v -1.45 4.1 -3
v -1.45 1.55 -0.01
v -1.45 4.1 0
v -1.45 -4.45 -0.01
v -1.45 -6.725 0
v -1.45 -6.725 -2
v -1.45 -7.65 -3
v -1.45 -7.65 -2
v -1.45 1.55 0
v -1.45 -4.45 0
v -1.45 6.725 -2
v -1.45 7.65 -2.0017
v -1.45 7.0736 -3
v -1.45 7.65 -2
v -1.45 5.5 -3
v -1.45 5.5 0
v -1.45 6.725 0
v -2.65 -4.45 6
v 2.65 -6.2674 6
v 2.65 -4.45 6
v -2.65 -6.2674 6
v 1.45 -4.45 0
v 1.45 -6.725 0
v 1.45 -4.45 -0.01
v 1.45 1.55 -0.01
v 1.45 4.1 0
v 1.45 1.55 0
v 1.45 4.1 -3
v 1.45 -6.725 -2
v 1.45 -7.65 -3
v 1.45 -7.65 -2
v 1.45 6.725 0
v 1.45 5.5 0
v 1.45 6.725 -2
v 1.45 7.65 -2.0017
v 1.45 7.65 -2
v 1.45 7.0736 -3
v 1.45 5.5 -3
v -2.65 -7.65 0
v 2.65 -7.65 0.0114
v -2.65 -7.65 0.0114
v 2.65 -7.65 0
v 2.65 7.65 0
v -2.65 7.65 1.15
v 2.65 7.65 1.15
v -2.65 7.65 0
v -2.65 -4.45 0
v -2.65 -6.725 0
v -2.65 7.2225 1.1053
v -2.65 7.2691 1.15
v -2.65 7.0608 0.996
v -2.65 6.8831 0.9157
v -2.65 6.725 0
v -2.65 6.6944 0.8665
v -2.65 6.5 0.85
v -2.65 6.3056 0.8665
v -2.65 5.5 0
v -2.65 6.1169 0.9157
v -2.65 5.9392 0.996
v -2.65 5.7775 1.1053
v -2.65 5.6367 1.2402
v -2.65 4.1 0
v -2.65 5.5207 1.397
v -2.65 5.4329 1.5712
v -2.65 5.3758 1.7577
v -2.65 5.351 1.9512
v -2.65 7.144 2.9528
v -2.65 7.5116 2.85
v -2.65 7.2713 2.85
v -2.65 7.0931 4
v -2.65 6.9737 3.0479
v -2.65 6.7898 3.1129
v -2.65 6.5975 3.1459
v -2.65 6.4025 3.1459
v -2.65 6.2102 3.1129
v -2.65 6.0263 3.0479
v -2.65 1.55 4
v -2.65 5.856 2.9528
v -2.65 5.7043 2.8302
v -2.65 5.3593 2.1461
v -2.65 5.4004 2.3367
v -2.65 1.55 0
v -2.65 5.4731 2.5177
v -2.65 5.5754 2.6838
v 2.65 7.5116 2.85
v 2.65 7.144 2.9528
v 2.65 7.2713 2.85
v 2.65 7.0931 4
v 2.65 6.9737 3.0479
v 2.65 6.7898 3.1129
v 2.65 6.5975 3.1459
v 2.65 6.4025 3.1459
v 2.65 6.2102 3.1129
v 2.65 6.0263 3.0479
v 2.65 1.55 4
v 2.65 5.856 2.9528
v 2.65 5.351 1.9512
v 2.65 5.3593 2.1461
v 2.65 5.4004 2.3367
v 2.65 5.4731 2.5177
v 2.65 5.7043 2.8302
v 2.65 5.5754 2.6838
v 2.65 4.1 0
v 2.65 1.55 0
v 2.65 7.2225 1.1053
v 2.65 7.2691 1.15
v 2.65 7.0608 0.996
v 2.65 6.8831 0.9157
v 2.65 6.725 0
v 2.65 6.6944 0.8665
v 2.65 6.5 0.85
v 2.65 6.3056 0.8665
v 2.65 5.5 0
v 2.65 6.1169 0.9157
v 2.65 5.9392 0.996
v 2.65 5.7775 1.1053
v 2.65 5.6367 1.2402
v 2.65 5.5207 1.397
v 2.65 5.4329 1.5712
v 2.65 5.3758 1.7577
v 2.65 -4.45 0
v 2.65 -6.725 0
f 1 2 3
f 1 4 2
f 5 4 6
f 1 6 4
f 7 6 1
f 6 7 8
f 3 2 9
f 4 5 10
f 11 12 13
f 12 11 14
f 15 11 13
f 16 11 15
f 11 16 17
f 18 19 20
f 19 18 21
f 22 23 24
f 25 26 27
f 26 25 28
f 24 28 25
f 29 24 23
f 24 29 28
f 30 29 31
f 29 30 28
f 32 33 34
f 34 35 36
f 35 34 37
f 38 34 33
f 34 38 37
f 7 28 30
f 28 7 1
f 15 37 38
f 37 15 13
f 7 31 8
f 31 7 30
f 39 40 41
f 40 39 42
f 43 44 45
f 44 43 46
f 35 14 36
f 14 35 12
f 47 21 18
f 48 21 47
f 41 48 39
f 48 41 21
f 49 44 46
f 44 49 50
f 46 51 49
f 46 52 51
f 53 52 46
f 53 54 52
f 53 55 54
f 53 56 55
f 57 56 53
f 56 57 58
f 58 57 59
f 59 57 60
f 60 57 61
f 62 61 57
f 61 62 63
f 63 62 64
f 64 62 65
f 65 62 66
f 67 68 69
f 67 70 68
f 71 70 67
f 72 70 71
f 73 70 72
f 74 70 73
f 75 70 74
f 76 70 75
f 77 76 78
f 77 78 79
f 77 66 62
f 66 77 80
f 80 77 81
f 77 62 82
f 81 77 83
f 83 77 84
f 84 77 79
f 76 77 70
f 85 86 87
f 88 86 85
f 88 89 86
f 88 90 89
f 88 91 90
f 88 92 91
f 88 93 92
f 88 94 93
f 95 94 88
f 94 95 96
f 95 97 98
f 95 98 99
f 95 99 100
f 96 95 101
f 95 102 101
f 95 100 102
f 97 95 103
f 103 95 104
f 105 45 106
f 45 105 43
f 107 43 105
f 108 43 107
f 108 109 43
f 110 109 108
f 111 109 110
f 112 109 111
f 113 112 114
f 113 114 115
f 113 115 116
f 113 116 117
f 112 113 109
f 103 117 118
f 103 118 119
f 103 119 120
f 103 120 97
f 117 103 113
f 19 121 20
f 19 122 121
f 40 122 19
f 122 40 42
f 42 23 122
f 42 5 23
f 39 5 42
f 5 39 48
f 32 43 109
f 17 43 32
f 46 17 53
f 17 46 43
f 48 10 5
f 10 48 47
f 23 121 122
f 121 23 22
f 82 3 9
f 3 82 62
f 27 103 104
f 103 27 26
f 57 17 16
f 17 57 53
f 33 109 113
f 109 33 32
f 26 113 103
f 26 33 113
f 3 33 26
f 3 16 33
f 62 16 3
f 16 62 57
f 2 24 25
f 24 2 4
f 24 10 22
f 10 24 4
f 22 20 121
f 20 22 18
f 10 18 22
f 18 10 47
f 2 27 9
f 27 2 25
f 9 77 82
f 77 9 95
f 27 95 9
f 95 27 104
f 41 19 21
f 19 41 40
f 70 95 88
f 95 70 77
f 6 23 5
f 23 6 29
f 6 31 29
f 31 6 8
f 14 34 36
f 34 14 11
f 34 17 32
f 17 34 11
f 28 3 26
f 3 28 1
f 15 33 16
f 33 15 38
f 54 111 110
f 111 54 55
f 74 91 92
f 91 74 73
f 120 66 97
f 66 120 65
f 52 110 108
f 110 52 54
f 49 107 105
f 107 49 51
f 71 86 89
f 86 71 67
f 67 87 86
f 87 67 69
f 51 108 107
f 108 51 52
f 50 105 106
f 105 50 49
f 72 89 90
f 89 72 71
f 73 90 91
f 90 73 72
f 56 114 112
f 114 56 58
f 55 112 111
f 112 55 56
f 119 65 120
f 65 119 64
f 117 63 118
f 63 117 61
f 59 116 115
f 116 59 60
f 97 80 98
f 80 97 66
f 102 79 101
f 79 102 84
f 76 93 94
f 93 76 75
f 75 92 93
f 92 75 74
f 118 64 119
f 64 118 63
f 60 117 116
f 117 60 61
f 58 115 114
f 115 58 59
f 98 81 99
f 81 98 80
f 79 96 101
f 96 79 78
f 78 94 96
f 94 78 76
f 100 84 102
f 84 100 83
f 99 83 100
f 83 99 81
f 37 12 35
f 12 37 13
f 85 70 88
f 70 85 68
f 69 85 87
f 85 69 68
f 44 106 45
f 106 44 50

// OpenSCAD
$fa = 1;
$fs = 0.2;

rod_diameter = 1.7;
rod_diameter_tolerance = 0.6;
tolerance = 0.1;
rod_entry_point_offset = 0.6;

total_length = 15.3;
base_width = 5.3;
hole_width = 3;
hole_length = 13.65;
inner_length = 6;
from_outer_edge_to_inner = 3.2;
plate_thickness = 1.5;
plate_tolerance = 0.5;
under_plate = 1.5;
height_above_plate = 6;
total_height = height_above_plate + plate_thickness + under_plate;
bar_side_height = 7 - plate_thickness - under_plate;
rod_hole_offset = 6.5;

sqrt2 = sqrt(2);

difference() {
  translate([0, 0, total_height / 2 - plate_thickness - under_plate])
    union() {
      cube([hole_width - tolerance, total_length, total_height], center = true);

      translate([0, 0, (total_height - height_above_plate) / 2])
          cube([base_width, total_length, height_above_plate], center = true);
    }

  translate([0, (inner_length - total_length) / 2 + from_outer_edge_to_inner, height_above_plate / 2 + 0.99])
    cube([base_width * 2, inner_length, height_above_plate + 2], center = true);
  translate([0, -hole_length * .852, 5])
    rotate([77, 0, 0])
      cube([base_width * 2, 10, 10], center = true);
  translate([0, 5, 5 + bar_side_height])
    cube([base_width * 2, 10, 10], center = true);
  translate([0, -total_length / 2 + tolerance, -(plate_thickness + plate_tolerance) / 2])
    cube([base_width * 2, total_length - hole_length, plate_thickness + plate_tolerance], center = true);
  translate([0, total_length / 2 - tolerance, -(plate_thickness + plate_tolerance) / 2])
    cube([base_width * 2, total_length - hole_length, plate_thickness + plate_tolerance], center = true);
  translate([0, 4.8,-under_plate - plate_thickness])
    cube([base_width * 2, 1.4, (under_plate + plate_thickness) * 2], center = true);
  translate([0, rod_hole_offset, bar_side_height / 2])
    rotate([0, 90, 0])
      cylinder(r = (rod_diameter + rod_diameter_tolerance) / 2, h = base_width * 2, center = true);
  translate([0, total_length / 2 + 1.3, -plate_thickness - plate_tolerance - under_plate / 2])
    rotate([-30, 0, 0])
      cube([base_width * 2, 3, 3], center = true);
  translate([0, total_length / 2 + 4.4, 5])
    rotate([20, 0, 0])
      cube([base_width * 2, 10, 10], center = true);
  translate([0, total_length / 2 + 2, bar_side_height / 2])
    cube([base_width * 2, 7, rod_diameter + rod_diameter_tolerance - rod_entry_point_offset], center = true);
}
